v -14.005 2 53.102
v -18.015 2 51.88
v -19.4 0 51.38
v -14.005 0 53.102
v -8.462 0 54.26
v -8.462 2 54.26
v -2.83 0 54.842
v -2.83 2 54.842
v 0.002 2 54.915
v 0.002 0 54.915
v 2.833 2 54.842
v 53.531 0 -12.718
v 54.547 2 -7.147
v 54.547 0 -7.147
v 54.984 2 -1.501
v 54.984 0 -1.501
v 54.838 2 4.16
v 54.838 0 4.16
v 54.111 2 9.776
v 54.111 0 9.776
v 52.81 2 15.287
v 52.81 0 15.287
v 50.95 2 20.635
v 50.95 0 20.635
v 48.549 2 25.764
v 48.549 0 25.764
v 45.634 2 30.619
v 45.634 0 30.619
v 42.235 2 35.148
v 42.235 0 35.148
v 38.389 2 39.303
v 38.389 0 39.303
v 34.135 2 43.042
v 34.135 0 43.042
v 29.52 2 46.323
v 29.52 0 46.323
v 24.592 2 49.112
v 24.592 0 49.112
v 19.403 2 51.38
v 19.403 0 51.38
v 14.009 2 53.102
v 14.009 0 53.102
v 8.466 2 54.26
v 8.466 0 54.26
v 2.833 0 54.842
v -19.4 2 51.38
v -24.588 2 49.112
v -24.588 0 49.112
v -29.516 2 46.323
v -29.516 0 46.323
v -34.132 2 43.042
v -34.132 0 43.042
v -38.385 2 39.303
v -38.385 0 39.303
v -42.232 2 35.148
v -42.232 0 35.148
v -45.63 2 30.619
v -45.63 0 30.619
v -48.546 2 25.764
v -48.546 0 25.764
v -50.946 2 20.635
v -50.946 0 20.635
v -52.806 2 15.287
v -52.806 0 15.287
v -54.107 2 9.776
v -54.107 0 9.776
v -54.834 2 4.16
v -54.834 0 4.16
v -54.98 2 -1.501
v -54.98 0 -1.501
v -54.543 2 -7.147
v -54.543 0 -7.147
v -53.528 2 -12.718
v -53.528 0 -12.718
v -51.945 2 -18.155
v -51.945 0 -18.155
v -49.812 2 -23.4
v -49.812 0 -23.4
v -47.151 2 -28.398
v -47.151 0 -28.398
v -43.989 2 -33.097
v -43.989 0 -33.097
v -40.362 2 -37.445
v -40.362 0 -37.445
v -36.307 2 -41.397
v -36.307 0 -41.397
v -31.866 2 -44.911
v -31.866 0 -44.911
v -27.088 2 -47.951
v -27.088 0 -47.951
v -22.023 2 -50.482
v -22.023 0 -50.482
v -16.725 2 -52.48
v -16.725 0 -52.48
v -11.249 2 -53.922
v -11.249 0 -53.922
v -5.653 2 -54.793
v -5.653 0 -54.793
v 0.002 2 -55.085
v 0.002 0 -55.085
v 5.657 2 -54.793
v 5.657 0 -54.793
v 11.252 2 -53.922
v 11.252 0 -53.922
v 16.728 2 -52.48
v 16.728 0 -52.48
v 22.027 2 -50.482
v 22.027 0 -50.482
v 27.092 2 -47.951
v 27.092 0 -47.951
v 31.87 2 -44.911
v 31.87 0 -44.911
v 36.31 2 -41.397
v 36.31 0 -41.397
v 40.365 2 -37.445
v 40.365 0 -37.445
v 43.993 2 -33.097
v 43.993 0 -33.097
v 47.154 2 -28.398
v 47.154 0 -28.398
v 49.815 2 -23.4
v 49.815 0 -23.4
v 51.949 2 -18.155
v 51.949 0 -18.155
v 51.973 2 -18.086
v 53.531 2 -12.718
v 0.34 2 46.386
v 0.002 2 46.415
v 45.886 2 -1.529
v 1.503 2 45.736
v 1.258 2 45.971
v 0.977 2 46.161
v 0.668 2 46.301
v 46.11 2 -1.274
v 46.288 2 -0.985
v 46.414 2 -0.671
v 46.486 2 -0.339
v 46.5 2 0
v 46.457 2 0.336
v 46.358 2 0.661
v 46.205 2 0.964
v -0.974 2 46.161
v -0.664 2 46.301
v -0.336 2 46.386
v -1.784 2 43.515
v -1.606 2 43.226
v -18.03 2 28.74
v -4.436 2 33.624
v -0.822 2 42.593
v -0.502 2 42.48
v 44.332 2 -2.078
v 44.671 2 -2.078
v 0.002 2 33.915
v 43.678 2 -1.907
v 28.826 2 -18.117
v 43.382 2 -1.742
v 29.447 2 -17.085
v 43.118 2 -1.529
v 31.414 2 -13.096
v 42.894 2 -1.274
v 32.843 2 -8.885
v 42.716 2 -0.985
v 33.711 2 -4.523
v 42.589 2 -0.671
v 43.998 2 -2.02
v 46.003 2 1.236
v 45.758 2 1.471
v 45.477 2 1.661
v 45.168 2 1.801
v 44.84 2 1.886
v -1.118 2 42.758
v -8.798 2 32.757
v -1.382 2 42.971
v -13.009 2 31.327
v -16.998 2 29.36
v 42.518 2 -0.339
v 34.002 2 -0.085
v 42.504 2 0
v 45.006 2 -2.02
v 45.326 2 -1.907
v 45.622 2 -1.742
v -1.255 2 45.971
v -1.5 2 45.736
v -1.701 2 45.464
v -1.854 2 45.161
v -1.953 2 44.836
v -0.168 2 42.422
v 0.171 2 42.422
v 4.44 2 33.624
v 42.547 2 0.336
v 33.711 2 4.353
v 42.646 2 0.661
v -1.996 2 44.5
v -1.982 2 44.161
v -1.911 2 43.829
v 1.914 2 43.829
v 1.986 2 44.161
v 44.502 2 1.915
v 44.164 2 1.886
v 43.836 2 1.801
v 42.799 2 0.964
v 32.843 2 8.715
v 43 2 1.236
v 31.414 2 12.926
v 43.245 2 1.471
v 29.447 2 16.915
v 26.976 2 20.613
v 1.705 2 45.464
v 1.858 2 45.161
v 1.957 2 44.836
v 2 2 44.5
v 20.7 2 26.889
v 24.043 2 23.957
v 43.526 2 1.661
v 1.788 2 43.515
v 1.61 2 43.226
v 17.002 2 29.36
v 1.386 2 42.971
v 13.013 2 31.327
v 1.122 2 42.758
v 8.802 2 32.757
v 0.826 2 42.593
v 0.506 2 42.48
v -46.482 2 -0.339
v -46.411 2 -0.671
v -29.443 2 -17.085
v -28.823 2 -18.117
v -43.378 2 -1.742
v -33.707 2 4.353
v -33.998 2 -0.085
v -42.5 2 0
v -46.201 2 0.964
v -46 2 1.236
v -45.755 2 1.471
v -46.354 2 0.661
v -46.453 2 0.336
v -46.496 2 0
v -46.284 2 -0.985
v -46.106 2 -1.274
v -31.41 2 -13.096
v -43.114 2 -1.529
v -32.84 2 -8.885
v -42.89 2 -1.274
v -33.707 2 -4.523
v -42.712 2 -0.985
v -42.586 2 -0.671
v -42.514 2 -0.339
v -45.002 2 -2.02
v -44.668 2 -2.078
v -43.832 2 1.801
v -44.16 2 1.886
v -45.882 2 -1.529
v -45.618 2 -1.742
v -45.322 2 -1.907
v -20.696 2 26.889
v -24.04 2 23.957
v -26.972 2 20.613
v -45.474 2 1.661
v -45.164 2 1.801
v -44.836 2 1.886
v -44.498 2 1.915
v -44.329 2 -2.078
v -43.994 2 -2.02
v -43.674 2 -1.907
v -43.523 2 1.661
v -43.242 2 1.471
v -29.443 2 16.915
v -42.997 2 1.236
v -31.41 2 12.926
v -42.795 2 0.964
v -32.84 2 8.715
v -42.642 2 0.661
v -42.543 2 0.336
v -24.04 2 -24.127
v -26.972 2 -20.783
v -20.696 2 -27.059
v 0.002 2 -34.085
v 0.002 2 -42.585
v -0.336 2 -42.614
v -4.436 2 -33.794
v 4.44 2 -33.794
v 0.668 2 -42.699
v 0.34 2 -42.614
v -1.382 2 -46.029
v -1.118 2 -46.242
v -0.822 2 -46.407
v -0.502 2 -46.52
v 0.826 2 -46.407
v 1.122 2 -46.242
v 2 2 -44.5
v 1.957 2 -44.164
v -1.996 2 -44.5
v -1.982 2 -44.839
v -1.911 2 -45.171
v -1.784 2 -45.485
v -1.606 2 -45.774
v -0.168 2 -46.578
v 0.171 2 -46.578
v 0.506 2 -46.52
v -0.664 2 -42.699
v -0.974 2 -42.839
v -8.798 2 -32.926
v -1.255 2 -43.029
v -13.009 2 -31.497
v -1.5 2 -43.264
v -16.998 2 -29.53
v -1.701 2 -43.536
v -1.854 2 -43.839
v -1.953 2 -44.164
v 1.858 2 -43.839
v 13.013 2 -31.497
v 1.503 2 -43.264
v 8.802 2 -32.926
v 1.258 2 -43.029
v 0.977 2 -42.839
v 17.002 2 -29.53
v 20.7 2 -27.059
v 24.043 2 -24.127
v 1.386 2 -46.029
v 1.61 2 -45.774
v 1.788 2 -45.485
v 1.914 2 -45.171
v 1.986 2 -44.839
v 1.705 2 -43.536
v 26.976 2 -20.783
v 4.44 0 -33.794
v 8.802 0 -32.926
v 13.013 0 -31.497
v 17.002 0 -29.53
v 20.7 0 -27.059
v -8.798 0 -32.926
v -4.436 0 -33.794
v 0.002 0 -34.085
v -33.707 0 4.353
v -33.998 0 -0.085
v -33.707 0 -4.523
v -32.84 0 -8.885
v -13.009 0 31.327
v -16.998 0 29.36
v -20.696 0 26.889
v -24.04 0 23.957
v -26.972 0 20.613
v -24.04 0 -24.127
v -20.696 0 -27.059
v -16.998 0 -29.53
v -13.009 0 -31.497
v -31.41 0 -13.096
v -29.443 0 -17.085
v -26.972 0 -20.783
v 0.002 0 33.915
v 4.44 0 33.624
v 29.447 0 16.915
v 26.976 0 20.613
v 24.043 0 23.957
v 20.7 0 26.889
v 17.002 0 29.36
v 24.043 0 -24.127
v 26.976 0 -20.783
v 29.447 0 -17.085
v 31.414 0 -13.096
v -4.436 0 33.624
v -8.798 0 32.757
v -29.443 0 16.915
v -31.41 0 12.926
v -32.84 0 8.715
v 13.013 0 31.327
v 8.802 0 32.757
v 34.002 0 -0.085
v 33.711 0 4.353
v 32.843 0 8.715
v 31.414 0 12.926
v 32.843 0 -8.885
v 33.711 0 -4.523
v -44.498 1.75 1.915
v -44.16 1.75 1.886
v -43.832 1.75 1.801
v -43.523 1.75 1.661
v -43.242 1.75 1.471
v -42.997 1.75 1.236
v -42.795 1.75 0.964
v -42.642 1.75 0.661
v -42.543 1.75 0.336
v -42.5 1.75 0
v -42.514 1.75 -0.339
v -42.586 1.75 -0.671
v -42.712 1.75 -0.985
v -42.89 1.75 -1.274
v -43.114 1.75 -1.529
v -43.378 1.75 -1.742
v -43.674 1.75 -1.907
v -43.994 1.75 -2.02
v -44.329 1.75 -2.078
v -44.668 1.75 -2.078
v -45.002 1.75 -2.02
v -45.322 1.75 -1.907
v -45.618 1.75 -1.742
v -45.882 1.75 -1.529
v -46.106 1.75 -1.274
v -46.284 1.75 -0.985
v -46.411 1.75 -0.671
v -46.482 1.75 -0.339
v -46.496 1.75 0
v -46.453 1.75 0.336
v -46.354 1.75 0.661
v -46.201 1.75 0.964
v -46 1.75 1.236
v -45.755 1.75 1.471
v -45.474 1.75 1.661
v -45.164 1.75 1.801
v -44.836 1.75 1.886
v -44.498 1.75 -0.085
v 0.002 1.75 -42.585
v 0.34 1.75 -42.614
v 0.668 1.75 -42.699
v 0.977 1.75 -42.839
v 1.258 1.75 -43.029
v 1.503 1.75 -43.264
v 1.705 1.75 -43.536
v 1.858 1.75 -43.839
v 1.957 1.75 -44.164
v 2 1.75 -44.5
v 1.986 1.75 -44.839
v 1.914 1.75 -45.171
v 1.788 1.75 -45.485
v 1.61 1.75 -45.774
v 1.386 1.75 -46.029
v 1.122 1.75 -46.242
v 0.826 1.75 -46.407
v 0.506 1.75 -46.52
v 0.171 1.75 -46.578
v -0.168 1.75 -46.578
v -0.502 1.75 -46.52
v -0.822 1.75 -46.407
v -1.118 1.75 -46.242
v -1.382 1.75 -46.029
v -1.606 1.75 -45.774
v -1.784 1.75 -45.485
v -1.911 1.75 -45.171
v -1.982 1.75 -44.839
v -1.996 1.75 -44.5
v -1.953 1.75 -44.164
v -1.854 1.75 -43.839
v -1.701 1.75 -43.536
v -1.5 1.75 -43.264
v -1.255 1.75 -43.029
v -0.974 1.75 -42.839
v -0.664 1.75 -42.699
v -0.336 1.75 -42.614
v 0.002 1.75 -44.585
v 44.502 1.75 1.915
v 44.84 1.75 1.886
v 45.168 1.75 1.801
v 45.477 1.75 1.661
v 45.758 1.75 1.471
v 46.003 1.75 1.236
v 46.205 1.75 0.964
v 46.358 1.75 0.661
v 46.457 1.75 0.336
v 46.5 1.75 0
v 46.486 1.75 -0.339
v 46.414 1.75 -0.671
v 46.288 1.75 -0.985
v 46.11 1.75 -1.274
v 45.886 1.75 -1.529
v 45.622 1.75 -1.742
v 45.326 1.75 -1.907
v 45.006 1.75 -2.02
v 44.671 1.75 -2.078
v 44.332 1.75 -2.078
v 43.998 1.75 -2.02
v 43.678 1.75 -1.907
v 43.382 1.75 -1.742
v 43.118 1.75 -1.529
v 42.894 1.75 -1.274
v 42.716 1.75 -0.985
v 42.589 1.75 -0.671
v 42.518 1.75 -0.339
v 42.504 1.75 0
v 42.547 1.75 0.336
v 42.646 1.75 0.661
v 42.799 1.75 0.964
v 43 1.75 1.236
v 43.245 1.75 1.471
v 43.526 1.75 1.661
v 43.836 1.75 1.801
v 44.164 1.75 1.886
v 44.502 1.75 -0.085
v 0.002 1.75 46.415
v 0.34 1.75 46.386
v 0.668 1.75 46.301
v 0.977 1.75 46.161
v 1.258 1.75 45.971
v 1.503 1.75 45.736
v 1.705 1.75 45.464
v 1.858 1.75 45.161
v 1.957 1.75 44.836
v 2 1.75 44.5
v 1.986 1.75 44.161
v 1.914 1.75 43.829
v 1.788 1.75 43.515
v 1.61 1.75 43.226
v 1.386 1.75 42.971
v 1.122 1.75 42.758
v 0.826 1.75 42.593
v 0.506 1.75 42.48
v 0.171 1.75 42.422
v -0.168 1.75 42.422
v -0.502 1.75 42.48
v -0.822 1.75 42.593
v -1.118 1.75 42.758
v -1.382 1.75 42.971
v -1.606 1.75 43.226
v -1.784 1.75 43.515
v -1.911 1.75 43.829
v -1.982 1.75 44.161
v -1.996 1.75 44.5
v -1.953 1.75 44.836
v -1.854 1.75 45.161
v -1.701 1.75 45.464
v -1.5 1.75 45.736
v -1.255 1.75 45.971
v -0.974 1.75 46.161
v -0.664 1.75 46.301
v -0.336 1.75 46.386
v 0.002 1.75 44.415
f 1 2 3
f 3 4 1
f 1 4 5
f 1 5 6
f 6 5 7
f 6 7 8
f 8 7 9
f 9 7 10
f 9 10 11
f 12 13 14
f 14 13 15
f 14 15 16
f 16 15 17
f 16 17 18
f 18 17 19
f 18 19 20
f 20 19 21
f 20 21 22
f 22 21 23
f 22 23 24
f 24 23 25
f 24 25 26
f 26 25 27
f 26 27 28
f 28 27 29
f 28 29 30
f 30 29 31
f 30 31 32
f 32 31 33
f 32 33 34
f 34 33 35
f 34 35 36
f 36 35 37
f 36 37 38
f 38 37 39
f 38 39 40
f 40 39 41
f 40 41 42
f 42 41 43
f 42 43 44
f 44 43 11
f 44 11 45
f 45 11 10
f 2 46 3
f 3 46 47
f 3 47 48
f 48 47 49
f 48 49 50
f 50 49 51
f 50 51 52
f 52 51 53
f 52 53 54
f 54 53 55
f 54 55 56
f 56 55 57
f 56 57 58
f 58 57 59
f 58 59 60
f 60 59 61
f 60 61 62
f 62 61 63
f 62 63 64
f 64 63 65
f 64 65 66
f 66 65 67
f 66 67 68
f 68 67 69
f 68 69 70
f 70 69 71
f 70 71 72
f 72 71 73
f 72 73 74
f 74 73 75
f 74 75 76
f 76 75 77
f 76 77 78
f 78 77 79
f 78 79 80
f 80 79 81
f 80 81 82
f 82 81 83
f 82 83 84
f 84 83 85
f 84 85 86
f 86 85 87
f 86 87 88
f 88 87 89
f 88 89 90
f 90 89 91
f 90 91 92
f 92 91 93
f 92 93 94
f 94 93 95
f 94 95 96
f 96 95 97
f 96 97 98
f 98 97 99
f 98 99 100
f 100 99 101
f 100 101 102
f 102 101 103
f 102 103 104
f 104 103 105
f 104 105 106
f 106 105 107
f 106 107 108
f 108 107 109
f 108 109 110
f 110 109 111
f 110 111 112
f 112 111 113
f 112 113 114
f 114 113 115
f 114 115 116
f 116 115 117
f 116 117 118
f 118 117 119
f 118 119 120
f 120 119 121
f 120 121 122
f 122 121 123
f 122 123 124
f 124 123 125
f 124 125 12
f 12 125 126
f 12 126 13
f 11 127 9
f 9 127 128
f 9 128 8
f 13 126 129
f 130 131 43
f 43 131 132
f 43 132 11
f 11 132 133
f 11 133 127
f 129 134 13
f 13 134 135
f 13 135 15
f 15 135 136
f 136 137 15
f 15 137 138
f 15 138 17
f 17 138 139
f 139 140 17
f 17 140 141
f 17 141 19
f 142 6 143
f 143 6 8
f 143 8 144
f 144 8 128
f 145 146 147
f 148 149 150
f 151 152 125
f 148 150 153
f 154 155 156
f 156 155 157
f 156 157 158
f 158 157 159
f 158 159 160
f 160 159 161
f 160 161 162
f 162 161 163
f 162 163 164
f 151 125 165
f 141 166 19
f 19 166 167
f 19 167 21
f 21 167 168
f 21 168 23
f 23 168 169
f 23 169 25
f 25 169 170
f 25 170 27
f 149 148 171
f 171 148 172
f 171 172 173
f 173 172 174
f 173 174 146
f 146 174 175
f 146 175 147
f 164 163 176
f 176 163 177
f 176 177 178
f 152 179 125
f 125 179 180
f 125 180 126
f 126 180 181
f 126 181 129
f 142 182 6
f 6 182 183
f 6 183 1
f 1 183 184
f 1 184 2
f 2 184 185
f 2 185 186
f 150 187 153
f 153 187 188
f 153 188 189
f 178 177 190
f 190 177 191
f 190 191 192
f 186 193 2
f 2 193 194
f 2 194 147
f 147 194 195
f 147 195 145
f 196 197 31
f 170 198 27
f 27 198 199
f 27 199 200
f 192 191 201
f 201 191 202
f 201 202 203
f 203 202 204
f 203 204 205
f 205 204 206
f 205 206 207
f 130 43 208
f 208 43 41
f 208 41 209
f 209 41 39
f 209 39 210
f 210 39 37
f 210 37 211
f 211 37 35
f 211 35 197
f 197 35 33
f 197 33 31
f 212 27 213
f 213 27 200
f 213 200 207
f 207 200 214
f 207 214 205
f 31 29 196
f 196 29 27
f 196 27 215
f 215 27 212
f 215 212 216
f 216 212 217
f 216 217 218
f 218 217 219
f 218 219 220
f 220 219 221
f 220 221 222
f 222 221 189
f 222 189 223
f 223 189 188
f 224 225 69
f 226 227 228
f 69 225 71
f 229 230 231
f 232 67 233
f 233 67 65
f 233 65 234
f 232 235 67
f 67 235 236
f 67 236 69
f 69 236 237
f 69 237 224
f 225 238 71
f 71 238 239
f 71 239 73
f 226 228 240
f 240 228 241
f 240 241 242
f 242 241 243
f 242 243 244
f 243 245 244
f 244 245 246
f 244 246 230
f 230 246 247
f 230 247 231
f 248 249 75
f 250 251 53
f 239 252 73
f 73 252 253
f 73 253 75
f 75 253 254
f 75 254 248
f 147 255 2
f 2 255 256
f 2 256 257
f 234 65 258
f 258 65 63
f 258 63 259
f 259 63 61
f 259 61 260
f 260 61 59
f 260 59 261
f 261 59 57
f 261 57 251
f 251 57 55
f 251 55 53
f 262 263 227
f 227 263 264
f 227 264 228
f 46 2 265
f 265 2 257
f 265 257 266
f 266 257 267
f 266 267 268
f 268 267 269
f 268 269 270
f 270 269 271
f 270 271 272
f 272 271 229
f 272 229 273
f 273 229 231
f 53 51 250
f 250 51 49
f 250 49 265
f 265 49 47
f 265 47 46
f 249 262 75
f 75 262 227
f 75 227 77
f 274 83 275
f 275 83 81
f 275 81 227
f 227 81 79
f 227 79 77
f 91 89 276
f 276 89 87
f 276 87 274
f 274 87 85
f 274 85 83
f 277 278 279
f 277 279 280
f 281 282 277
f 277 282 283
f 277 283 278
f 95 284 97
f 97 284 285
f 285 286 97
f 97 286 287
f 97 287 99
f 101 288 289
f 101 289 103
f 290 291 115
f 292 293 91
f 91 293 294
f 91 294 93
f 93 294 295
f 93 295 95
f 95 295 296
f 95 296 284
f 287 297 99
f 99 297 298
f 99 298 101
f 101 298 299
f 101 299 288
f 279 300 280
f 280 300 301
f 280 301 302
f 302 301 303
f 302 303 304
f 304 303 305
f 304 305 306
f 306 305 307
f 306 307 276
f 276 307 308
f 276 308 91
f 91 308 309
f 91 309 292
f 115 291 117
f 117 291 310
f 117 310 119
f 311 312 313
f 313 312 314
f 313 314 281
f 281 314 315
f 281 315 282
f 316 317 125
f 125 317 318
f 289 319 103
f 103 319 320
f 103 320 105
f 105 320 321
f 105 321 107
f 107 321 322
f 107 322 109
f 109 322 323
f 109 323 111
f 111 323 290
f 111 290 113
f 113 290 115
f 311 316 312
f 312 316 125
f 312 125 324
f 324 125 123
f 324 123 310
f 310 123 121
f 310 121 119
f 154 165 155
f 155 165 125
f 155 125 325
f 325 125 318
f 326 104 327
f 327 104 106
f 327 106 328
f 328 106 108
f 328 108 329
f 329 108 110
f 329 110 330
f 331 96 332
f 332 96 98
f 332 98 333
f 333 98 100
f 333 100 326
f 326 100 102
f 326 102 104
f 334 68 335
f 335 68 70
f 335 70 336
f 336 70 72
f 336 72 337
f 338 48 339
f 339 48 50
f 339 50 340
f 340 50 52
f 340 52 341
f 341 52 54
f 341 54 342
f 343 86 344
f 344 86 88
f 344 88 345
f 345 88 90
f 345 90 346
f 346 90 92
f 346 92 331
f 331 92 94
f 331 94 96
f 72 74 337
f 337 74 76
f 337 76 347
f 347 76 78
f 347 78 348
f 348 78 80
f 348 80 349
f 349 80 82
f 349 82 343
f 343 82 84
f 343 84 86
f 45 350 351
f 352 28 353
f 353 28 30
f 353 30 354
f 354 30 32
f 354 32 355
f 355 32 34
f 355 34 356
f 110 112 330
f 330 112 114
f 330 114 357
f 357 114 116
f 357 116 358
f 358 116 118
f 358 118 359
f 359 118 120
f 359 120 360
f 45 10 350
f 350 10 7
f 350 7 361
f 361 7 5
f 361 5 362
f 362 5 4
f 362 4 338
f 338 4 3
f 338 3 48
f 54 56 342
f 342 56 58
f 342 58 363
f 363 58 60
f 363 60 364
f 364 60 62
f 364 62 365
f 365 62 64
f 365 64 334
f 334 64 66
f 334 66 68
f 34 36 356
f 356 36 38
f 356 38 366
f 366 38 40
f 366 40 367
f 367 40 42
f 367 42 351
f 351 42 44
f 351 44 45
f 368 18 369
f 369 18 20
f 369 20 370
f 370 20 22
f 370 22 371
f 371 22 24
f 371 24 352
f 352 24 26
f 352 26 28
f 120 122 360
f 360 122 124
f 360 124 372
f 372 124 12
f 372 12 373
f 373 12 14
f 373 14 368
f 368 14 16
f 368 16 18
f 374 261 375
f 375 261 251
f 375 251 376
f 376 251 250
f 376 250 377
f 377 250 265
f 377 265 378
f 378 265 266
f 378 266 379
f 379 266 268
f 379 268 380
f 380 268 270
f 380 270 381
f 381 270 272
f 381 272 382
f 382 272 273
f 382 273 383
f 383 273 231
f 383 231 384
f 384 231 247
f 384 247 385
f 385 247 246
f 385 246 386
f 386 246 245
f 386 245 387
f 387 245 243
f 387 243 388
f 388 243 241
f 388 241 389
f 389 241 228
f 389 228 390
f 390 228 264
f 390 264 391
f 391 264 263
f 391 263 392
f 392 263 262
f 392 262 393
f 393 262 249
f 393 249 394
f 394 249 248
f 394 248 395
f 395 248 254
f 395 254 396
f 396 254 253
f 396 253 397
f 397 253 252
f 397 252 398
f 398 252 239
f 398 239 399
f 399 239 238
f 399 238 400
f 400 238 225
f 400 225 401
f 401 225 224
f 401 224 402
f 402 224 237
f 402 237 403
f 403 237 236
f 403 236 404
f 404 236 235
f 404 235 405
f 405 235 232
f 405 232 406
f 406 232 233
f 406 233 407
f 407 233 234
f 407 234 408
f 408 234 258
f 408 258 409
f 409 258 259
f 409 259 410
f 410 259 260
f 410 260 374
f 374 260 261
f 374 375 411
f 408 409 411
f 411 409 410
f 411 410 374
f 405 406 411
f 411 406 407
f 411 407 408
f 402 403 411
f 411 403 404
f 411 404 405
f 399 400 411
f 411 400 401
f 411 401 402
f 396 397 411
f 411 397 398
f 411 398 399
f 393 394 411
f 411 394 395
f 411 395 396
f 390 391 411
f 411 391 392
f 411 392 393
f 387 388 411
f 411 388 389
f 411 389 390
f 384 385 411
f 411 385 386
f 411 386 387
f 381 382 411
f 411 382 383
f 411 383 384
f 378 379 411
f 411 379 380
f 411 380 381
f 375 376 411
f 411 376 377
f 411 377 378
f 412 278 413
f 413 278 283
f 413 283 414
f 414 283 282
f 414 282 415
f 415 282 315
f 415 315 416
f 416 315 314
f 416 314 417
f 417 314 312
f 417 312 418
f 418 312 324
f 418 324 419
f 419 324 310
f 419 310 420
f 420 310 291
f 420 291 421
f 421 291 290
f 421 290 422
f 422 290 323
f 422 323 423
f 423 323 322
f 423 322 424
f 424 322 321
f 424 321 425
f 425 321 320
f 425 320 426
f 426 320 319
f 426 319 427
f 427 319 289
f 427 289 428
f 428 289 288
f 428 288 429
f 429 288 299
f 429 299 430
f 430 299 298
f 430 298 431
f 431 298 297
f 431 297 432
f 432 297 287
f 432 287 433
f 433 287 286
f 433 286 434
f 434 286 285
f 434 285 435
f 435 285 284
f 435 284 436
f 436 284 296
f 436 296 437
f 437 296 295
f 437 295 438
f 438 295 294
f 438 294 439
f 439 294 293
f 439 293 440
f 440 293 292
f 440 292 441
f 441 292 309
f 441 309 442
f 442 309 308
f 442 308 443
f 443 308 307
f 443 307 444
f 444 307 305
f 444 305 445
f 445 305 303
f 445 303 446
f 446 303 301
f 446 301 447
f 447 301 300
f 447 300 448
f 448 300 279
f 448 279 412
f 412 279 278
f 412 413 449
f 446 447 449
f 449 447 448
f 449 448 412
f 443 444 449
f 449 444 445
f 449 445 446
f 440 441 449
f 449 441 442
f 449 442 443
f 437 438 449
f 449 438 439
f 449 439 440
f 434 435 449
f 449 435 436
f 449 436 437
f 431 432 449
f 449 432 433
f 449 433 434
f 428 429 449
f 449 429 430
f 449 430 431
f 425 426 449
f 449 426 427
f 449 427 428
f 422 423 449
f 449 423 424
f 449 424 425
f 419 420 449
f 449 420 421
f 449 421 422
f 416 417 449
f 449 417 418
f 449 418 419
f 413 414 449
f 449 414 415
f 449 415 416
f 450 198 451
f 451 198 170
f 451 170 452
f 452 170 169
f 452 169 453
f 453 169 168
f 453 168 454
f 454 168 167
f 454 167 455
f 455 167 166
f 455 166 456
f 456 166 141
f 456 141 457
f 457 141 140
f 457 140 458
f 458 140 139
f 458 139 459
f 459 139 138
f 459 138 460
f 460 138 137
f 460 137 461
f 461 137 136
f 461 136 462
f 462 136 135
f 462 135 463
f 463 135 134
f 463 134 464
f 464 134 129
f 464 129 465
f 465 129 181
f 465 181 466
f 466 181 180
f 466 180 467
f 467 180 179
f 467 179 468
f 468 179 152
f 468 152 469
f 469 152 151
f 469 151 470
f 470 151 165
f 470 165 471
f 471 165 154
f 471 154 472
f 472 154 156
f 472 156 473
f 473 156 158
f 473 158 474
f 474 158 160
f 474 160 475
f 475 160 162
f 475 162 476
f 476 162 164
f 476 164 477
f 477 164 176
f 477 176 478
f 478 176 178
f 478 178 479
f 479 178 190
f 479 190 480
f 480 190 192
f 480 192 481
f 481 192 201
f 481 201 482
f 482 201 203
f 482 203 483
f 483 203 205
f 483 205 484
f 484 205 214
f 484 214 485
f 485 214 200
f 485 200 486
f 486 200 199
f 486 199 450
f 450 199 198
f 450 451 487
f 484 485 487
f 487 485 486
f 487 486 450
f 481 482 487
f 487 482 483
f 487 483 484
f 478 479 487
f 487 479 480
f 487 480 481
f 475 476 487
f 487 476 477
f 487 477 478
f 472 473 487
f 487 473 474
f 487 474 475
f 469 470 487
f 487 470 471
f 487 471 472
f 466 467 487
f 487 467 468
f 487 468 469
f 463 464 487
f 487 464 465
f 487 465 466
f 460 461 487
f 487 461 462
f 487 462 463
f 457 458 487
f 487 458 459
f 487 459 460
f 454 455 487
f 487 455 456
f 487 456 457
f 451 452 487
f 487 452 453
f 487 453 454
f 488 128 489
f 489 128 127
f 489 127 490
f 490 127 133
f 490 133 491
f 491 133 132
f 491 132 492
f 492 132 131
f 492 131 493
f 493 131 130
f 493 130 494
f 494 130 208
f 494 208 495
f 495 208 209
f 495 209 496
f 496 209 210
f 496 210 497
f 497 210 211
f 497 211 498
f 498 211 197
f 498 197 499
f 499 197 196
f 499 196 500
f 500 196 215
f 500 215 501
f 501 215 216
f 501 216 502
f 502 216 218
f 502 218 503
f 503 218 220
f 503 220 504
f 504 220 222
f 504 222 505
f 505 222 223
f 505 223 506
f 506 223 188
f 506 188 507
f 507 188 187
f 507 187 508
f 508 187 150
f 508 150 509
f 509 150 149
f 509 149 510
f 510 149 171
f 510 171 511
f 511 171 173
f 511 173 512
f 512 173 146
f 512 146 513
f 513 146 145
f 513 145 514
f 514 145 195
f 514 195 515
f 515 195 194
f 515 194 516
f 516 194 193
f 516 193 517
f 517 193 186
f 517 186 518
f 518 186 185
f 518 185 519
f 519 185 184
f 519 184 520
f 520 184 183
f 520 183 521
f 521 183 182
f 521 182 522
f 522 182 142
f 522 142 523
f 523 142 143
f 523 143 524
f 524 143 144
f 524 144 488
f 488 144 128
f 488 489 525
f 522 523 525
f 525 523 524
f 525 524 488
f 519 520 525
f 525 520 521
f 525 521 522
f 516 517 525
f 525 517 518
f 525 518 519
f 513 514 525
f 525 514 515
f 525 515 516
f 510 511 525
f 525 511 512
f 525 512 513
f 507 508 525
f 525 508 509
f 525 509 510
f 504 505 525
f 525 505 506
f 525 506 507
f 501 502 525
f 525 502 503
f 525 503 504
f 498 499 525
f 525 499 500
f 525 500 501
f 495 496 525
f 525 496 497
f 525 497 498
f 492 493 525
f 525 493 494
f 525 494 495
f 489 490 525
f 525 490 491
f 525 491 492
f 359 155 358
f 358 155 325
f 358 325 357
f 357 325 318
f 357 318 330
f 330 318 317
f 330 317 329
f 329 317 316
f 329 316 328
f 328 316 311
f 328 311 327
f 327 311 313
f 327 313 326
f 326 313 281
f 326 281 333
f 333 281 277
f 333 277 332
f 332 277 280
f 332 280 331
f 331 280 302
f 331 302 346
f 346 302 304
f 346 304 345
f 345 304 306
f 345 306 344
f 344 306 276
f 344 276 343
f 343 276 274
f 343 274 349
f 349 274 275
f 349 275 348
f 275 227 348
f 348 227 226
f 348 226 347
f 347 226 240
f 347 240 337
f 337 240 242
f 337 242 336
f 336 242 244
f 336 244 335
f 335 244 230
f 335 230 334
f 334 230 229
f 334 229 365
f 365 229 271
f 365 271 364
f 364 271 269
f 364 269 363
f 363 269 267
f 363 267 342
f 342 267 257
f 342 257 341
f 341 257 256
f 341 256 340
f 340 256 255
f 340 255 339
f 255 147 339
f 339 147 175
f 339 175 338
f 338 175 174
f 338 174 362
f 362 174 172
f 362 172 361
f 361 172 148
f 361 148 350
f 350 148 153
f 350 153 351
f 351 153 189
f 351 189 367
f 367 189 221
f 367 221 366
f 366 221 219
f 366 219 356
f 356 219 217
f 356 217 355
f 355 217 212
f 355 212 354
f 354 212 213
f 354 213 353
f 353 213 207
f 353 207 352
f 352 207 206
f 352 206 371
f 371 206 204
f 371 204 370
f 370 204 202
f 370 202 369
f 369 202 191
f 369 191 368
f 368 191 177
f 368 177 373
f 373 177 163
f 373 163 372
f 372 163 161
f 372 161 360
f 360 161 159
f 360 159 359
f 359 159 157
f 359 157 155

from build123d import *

# Parameters (mm, degrees)
SKETCH1_R           = 55
BOSS_EXTRUDE1_DEPTH = 2
SKETCH2_R           = 2
CUT_EXTRUDE1_DEPTH  = 0.25
SKETCH3_R           = 34
CUT_EXTRUDE2_DEPTH  = 10


with BuildPart() as part:
    # Sketch1 → Boss-Extrude1 (new body)
    with BuildSketch(Plane(origin=(0, 0, 0), x_dir=(1, 0, 0), z_dir=(0, 1, 0))):
        Circle(SKETCH1_R)
    extrude(amount=BOSS_EXTRUDE1_DEPTH)

    # Sketch2 → Cut-Extrude1 (cut)
    with BuildSketch(Plane(origin=(0, 2, 0), x_dir=(1, 0, 0), z_dir=(0, 1, 0))):
        with Locations((0, 44.5)):
            Circle(SKETCH2_R)
        with Locations((44.5, 0)):
            Circle(SKETCH2_R)
        with Locations((0, -44.5)):
            Circle(SKETCH2_R)
        with Locations((-44.5, 0)):
            Circle(SKETCH2_R)
    extrude(amount=-CUT_EXTRUDE1_DEPTH, mode=Mode.SUBTRACT)

    # Sketch3 → Cut-Extrude2 (cut)
    with BuildSketch(Plane(origin=(0, 2, 0), x_dir=(1, 0, 0), z_dir=(0, 1, 0))):
        Circle(SKETCH3_R)
    extrude(amount=-CUT_EXTRUDE2_DEPTH, mode=Mode.SUBTRACT)


solid = part.part
